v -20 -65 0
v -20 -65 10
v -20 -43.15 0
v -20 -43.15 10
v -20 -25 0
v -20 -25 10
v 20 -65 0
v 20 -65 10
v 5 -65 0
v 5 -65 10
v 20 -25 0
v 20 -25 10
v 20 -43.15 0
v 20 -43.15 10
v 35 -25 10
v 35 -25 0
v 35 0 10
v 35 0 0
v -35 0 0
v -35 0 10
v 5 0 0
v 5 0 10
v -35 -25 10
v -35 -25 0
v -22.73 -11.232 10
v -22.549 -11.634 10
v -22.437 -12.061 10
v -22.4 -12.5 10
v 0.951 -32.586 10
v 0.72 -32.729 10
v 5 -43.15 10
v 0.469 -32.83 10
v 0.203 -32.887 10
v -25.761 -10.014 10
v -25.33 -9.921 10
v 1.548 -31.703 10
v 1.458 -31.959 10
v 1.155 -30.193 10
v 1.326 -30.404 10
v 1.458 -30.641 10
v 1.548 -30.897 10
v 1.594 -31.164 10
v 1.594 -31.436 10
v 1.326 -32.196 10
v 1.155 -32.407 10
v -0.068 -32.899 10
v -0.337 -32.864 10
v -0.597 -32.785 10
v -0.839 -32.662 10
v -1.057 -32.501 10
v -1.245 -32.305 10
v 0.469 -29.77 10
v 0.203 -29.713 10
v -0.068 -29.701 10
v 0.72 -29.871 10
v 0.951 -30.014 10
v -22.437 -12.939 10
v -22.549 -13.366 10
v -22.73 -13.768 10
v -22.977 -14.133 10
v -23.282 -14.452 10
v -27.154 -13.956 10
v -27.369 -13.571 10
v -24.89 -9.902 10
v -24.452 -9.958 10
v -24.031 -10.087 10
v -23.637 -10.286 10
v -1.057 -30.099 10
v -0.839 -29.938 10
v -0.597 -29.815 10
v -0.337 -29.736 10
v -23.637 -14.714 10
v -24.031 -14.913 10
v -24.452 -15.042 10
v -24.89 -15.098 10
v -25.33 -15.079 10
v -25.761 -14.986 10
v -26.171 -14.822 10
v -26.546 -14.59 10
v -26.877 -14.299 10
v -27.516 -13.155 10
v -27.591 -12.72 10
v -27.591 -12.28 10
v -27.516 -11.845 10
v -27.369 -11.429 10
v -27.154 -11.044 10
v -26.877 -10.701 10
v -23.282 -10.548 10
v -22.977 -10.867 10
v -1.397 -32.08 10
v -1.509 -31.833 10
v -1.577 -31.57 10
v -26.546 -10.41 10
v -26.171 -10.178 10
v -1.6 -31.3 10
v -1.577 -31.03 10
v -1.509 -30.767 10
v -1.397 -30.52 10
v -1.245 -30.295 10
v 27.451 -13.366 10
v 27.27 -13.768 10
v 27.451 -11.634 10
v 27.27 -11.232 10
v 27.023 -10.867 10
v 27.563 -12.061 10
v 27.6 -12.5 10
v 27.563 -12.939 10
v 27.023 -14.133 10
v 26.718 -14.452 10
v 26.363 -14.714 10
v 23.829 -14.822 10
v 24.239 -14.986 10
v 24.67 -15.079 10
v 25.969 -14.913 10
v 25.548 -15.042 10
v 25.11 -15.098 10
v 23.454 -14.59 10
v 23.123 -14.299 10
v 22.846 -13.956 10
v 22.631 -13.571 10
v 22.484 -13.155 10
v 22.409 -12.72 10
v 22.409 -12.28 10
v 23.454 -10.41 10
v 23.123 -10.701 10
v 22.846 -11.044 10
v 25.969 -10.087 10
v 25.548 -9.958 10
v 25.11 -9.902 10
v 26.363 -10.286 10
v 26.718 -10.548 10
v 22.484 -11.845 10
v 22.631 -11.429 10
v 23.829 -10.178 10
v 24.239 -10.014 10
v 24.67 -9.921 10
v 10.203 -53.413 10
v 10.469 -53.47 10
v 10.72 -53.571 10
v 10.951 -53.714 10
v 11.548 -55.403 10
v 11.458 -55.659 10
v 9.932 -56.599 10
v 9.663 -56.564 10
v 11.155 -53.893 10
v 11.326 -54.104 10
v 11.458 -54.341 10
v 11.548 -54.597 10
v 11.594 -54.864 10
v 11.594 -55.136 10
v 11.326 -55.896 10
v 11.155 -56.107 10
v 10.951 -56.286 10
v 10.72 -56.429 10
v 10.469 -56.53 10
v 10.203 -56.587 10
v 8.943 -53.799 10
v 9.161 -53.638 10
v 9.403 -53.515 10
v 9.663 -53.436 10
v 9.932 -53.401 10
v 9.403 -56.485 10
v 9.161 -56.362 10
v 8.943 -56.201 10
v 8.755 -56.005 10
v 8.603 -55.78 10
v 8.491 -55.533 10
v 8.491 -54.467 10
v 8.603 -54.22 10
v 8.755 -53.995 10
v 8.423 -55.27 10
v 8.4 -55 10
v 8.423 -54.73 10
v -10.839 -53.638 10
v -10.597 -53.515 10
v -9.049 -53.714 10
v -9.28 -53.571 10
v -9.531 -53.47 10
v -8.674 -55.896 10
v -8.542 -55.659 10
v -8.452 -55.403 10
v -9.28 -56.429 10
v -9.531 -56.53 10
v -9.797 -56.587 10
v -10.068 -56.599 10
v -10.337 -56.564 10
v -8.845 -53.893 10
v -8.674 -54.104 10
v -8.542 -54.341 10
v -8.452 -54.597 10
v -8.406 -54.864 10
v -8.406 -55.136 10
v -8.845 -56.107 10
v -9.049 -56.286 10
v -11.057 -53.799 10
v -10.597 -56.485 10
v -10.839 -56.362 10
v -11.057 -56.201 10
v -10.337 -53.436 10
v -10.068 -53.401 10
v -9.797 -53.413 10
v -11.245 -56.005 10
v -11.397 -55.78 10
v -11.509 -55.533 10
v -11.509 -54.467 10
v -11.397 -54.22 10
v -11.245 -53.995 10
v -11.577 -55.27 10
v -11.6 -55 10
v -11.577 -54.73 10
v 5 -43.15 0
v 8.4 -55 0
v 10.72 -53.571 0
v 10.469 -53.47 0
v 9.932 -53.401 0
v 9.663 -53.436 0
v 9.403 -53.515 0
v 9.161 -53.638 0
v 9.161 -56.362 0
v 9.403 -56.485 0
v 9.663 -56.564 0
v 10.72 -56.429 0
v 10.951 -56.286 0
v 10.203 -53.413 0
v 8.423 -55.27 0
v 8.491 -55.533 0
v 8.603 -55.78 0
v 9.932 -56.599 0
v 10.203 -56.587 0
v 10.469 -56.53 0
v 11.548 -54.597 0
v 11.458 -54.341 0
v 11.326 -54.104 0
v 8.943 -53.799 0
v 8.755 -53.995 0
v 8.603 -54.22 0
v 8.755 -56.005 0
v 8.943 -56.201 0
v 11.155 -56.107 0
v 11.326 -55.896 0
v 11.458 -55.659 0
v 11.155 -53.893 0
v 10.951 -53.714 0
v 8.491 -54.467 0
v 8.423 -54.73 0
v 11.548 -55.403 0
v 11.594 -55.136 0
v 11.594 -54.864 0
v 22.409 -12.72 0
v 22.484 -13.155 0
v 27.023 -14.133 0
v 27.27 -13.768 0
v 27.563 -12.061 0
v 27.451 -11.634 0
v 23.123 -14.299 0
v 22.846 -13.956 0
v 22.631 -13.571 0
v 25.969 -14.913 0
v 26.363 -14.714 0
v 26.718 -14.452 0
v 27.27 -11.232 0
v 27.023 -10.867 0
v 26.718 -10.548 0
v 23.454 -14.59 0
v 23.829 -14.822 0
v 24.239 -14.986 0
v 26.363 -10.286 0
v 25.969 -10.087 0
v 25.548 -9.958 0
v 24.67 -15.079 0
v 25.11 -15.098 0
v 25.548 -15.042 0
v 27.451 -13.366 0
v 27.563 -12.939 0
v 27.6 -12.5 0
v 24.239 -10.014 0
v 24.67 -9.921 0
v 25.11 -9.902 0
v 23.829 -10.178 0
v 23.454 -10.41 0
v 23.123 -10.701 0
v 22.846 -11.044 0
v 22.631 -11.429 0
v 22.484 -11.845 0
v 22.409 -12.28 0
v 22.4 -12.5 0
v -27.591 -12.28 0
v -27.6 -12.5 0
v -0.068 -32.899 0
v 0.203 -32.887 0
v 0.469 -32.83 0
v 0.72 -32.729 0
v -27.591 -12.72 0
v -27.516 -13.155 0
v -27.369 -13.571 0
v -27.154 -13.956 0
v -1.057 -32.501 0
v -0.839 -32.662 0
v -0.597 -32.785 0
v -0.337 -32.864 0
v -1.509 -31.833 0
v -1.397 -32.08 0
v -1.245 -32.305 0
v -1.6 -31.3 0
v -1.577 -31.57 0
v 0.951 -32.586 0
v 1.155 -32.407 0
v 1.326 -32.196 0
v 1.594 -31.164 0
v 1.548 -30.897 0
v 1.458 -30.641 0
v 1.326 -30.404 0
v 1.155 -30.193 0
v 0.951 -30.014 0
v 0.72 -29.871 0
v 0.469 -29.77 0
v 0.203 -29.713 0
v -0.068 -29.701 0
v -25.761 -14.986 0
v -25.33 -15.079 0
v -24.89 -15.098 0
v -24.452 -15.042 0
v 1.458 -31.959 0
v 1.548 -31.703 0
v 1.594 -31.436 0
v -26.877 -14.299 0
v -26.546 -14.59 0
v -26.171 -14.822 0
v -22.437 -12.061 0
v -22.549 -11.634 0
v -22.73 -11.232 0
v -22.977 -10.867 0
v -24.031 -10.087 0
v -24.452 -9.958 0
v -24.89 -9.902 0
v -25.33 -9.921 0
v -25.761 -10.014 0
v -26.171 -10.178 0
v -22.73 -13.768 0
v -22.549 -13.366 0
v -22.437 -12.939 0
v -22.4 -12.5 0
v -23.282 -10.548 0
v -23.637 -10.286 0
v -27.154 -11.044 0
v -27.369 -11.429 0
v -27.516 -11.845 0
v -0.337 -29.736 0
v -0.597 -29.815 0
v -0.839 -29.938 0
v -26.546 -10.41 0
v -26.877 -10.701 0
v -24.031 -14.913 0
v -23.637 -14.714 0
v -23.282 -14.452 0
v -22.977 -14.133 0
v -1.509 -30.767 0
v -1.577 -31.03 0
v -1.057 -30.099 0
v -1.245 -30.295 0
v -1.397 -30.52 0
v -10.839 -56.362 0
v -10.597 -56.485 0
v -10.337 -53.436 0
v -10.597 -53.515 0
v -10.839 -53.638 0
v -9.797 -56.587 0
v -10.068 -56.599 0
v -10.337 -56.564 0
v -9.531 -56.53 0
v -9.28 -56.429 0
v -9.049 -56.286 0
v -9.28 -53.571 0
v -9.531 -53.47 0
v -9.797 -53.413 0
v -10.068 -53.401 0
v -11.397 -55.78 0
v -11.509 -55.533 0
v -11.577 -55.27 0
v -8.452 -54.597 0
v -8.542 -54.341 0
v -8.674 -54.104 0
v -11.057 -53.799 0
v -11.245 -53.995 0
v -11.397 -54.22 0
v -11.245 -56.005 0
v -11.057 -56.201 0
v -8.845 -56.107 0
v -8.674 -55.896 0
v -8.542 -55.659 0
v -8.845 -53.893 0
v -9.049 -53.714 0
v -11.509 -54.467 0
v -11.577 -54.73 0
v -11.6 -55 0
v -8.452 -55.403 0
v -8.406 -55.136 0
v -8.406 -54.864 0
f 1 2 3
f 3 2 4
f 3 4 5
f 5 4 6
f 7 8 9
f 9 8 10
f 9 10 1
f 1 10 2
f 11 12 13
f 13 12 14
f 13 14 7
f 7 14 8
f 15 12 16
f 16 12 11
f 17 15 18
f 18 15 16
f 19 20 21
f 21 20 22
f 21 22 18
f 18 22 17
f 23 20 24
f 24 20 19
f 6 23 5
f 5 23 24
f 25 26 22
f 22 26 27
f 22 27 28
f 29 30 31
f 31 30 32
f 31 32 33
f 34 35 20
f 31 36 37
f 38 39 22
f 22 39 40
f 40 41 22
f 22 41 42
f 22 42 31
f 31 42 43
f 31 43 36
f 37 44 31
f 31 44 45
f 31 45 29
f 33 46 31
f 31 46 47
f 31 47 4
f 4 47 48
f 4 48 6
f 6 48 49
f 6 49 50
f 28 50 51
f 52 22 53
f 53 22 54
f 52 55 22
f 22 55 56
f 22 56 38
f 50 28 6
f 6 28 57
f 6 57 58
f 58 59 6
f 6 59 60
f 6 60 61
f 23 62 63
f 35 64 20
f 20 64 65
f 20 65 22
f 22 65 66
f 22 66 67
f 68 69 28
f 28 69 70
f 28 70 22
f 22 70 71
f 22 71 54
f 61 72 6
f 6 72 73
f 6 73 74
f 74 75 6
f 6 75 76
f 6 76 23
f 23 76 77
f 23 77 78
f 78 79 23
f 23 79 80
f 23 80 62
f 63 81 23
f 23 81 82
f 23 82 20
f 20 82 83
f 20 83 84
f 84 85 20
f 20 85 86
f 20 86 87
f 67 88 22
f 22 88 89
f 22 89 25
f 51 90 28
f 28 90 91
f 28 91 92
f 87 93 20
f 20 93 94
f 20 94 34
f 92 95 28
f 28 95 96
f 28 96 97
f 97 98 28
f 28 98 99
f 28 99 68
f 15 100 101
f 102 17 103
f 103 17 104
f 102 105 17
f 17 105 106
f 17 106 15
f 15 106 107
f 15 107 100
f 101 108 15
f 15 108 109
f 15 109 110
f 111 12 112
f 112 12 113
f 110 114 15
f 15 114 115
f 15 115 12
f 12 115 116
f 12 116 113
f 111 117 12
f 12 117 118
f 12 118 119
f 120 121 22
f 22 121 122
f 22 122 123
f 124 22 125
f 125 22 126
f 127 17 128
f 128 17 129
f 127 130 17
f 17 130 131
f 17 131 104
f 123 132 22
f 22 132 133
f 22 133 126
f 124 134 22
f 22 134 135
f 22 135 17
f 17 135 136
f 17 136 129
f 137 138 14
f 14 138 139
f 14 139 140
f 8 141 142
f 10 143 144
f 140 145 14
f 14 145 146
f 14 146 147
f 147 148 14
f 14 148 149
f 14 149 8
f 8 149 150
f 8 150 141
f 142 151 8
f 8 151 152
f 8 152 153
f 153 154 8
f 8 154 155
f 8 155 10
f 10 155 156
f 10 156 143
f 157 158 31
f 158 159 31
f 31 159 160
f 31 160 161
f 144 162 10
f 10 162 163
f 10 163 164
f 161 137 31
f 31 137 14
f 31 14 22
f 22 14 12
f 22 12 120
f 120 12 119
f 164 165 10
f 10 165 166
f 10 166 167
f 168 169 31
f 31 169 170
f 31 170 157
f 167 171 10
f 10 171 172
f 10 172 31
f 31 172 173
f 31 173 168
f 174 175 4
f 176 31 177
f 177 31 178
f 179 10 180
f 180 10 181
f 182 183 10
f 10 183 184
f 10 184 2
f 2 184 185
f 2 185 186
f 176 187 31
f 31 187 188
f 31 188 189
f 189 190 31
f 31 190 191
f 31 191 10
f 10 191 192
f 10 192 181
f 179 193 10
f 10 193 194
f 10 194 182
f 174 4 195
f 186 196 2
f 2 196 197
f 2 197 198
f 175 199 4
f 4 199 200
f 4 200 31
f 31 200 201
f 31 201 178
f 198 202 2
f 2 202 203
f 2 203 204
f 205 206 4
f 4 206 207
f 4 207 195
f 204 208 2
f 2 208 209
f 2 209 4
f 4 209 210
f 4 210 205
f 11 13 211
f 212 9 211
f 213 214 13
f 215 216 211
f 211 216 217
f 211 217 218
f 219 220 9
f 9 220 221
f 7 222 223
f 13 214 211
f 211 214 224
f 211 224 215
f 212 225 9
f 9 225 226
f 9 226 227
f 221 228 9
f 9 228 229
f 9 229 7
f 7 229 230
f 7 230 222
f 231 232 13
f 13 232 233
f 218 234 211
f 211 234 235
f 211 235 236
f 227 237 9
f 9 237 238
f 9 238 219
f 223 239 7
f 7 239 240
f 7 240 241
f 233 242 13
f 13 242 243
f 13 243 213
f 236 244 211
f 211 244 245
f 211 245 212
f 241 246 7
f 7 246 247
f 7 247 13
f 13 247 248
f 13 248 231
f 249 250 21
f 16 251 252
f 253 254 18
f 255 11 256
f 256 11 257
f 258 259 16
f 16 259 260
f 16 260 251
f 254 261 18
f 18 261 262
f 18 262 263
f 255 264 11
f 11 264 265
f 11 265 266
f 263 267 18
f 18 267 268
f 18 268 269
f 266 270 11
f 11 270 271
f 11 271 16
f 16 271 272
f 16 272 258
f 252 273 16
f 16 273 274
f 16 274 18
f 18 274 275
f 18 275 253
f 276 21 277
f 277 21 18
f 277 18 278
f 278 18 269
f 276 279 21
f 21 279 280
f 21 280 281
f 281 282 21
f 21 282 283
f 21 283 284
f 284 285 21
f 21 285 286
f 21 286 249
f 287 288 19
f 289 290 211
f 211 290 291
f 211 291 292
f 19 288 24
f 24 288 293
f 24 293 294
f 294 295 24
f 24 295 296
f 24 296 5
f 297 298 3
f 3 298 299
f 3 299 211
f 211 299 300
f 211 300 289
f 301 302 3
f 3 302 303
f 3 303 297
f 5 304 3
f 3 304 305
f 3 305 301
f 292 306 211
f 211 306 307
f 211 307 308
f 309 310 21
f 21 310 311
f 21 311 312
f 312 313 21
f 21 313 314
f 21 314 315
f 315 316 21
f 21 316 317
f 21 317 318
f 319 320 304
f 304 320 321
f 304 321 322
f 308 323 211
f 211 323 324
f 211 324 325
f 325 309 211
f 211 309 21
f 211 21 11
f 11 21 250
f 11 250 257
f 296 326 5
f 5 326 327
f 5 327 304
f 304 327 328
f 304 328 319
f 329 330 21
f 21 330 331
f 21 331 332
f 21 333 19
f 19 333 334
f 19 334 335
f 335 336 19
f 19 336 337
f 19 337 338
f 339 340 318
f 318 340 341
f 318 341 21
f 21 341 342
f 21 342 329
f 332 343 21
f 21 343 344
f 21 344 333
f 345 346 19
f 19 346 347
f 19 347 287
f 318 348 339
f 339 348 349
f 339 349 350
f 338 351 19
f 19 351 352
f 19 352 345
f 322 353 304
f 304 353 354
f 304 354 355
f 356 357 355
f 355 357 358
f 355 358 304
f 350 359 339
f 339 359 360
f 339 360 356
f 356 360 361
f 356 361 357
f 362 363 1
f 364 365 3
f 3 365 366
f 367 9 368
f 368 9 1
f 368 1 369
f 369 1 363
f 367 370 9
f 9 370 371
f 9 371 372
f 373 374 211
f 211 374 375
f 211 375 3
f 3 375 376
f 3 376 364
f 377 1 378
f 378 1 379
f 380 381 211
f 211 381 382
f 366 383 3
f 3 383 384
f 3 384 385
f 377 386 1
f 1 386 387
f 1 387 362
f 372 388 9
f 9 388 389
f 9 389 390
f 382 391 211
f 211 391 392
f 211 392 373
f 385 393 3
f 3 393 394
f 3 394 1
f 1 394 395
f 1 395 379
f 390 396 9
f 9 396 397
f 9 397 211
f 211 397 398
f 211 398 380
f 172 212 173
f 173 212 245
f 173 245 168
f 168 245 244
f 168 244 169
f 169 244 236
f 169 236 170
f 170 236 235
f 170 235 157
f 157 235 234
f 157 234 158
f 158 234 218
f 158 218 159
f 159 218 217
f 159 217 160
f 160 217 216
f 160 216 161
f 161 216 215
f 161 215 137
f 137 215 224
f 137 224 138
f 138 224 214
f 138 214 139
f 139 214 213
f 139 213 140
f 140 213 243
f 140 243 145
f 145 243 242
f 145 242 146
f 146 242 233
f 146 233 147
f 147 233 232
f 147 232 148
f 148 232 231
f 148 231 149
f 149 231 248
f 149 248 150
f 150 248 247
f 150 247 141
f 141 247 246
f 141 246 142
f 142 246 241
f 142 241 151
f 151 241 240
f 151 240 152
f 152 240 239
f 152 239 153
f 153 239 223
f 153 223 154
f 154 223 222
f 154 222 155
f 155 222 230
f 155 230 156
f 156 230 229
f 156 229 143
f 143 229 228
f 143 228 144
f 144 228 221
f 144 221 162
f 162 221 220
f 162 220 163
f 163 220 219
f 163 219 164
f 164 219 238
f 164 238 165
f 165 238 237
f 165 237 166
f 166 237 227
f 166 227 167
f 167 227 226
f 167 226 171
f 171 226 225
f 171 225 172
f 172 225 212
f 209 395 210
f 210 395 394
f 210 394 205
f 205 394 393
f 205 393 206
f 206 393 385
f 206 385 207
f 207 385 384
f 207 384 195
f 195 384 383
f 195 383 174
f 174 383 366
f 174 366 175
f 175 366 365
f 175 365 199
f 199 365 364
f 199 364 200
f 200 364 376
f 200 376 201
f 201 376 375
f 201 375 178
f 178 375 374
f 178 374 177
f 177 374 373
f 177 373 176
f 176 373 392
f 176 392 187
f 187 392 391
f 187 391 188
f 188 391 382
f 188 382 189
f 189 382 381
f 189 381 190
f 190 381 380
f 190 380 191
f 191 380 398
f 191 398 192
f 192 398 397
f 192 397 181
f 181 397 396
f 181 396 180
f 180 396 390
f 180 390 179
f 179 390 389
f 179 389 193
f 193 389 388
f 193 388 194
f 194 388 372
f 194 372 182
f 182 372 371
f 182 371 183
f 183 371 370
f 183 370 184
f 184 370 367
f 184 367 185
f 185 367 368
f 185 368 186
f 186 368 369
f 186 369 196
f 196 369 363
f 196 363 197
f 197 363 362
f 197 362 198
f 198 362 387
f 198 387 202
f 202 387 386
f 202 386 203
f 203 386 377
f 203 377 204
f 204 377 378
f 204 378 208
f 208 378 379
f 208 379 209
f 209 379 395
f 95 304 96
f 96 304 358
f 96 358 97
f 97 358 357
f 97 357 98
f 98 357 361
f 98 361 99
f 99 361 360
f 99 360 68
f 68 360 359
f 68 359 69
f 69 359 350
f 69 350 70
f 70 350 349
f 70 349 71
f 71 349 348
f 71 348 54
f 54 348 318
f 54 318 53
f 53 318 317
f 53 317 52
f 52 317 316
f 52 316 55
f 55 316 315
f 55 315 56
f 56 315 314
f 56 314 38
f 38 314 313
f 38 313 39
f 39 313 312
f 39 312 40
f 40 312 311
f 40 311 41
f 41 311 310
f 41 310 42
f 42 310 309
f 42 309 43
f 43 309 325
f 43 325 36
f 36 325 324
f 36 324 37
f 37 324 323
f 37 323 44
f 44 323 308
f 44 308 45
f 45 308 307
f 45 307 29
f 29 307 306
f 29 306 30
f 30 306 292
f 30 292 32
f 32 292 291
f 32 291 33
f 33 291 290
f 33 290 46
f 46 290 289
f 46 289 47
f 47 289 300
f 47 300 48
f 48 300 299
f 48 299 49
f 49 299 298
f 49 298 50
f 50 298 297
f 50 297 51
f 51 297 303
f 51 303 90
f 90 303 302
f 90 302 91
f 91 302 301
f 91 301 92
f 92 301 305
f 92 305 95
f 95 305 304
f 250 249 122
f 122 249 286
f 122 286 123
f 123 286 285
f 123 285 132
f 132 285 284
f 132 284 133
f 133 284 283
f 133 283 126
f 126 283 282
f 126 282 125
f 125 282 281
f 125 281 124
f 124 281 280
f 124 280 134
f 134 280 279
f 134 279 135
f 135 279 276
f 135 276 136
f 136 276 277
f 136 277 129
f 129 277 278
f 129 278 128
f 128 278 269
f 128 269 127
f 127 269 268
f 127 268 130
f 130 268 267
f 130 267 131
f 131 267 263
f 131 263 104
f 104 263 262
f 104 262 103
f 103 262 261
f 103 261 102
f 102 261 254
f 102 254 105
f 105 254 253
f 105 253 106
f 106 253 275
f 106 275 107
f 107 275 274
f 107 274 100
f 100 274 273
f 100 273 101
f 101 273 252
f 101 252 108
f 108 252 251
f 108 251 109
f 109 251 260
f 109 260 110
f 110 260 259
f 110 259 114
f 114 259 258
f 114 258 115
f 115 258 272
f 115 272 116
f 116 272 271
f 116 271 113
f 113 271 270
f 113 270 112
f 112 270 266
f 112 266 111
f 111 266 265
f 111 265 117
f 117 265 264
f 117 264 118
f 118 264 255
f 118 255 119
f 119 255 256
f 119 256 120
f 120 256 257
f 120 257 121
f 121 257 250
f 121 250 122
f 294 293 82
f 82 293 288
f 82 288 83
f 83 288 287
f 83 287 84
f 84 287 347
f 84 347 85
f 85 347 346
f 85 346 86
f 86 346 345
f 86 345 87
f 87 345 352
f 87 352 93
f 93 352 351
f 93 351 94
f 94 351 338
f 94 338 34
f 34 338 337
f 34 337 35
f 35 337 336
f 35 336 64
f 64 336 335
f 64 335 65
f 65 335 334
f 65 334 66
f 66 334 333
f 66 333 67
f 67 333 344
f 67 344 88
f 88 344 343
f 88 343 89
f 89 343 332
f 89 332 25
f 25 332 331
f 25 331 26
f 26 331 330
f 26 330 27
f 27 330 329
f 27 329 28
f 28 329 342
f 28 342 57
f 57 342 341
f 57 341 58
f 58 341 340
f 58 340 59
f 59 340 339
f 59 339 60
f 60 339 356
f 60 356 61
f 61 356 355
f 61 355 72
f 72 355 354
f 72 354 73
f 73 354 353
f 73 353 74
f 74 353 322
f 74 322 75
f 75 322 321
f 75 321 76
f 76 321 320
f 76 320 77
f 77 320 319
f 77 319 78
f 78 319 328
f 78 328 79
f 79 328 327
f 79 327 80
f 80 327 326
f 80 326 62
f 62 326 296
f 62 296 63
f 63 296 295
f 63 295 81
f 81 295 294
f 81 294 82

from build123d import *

# Parameters (mm, degrees)
BOSS_EXTRUDE1_DEPTH = 10
SKETCH6_R           = 1.6
CUT_EXTRUDE1_DEPTH  = 10
SKETCH7_R           = 1.6
CUT_EXTRUDE2_DEPTH  = 10
SKETCH9_R           = 2.6
CUT_EXTRUDE4_DEPTH  = 10


with BuildPart() as part:
    # Sketch1 → Boss-Extrude1 (new body)
    with BuildSketch(Plane.XY):
        Polygon((-35, 0), (35, 0), (35, -25), (20, -25), (20, -65), (-20, -65), (-20, -25), (-35, -25), align=None)
    extrude(amount=BOSS_EXTRUDE1_DEPTH)

    # Sketch6 → Cut-Extrude1 (cut)
    with BuildSketch(Plane(origin=(0, 0, 0), x_dir=(-1, 0, 0), z_dir=(0, 0, -1))):
        with Locations((10, -55)):
            Circle(SKETCH6_R)
        with Locations((-10, -55)):
            Circle(SKETCH6_R)
    extrude(amount=-CUT_EXTRUDE1_DEPTH, mode=Mode.SUBTRACT)

    # Sketch7 → Cut-Extrude2 (cut)
    with BuildSketch(Plane(origin=(0, 0, 0), x_dir=(-1, 0, 0), z_dir=(0, 0, -1))):
        with Locations((0, -31.3)):
            Circle(SKETCH7_R)
    extrude(amount=-CUT_EXTRUDE2_DEPTH, mode=Mode.SUBTRACT)

    # Sketch9 → Cut-Extrude4 (cut)
    with BuildSketch(Plane.XY.offset(10)):
        with Locations((-25, -12.5)):
            Circle(SKETCH9_R)
        with Locations((25, -12.5)):
            Circle(SKETCH9_R)
    extrude(amount=-CUT_EXTRUDE4_DEPTH, mode=Mode.SUBTRACT)


solid = part.part
